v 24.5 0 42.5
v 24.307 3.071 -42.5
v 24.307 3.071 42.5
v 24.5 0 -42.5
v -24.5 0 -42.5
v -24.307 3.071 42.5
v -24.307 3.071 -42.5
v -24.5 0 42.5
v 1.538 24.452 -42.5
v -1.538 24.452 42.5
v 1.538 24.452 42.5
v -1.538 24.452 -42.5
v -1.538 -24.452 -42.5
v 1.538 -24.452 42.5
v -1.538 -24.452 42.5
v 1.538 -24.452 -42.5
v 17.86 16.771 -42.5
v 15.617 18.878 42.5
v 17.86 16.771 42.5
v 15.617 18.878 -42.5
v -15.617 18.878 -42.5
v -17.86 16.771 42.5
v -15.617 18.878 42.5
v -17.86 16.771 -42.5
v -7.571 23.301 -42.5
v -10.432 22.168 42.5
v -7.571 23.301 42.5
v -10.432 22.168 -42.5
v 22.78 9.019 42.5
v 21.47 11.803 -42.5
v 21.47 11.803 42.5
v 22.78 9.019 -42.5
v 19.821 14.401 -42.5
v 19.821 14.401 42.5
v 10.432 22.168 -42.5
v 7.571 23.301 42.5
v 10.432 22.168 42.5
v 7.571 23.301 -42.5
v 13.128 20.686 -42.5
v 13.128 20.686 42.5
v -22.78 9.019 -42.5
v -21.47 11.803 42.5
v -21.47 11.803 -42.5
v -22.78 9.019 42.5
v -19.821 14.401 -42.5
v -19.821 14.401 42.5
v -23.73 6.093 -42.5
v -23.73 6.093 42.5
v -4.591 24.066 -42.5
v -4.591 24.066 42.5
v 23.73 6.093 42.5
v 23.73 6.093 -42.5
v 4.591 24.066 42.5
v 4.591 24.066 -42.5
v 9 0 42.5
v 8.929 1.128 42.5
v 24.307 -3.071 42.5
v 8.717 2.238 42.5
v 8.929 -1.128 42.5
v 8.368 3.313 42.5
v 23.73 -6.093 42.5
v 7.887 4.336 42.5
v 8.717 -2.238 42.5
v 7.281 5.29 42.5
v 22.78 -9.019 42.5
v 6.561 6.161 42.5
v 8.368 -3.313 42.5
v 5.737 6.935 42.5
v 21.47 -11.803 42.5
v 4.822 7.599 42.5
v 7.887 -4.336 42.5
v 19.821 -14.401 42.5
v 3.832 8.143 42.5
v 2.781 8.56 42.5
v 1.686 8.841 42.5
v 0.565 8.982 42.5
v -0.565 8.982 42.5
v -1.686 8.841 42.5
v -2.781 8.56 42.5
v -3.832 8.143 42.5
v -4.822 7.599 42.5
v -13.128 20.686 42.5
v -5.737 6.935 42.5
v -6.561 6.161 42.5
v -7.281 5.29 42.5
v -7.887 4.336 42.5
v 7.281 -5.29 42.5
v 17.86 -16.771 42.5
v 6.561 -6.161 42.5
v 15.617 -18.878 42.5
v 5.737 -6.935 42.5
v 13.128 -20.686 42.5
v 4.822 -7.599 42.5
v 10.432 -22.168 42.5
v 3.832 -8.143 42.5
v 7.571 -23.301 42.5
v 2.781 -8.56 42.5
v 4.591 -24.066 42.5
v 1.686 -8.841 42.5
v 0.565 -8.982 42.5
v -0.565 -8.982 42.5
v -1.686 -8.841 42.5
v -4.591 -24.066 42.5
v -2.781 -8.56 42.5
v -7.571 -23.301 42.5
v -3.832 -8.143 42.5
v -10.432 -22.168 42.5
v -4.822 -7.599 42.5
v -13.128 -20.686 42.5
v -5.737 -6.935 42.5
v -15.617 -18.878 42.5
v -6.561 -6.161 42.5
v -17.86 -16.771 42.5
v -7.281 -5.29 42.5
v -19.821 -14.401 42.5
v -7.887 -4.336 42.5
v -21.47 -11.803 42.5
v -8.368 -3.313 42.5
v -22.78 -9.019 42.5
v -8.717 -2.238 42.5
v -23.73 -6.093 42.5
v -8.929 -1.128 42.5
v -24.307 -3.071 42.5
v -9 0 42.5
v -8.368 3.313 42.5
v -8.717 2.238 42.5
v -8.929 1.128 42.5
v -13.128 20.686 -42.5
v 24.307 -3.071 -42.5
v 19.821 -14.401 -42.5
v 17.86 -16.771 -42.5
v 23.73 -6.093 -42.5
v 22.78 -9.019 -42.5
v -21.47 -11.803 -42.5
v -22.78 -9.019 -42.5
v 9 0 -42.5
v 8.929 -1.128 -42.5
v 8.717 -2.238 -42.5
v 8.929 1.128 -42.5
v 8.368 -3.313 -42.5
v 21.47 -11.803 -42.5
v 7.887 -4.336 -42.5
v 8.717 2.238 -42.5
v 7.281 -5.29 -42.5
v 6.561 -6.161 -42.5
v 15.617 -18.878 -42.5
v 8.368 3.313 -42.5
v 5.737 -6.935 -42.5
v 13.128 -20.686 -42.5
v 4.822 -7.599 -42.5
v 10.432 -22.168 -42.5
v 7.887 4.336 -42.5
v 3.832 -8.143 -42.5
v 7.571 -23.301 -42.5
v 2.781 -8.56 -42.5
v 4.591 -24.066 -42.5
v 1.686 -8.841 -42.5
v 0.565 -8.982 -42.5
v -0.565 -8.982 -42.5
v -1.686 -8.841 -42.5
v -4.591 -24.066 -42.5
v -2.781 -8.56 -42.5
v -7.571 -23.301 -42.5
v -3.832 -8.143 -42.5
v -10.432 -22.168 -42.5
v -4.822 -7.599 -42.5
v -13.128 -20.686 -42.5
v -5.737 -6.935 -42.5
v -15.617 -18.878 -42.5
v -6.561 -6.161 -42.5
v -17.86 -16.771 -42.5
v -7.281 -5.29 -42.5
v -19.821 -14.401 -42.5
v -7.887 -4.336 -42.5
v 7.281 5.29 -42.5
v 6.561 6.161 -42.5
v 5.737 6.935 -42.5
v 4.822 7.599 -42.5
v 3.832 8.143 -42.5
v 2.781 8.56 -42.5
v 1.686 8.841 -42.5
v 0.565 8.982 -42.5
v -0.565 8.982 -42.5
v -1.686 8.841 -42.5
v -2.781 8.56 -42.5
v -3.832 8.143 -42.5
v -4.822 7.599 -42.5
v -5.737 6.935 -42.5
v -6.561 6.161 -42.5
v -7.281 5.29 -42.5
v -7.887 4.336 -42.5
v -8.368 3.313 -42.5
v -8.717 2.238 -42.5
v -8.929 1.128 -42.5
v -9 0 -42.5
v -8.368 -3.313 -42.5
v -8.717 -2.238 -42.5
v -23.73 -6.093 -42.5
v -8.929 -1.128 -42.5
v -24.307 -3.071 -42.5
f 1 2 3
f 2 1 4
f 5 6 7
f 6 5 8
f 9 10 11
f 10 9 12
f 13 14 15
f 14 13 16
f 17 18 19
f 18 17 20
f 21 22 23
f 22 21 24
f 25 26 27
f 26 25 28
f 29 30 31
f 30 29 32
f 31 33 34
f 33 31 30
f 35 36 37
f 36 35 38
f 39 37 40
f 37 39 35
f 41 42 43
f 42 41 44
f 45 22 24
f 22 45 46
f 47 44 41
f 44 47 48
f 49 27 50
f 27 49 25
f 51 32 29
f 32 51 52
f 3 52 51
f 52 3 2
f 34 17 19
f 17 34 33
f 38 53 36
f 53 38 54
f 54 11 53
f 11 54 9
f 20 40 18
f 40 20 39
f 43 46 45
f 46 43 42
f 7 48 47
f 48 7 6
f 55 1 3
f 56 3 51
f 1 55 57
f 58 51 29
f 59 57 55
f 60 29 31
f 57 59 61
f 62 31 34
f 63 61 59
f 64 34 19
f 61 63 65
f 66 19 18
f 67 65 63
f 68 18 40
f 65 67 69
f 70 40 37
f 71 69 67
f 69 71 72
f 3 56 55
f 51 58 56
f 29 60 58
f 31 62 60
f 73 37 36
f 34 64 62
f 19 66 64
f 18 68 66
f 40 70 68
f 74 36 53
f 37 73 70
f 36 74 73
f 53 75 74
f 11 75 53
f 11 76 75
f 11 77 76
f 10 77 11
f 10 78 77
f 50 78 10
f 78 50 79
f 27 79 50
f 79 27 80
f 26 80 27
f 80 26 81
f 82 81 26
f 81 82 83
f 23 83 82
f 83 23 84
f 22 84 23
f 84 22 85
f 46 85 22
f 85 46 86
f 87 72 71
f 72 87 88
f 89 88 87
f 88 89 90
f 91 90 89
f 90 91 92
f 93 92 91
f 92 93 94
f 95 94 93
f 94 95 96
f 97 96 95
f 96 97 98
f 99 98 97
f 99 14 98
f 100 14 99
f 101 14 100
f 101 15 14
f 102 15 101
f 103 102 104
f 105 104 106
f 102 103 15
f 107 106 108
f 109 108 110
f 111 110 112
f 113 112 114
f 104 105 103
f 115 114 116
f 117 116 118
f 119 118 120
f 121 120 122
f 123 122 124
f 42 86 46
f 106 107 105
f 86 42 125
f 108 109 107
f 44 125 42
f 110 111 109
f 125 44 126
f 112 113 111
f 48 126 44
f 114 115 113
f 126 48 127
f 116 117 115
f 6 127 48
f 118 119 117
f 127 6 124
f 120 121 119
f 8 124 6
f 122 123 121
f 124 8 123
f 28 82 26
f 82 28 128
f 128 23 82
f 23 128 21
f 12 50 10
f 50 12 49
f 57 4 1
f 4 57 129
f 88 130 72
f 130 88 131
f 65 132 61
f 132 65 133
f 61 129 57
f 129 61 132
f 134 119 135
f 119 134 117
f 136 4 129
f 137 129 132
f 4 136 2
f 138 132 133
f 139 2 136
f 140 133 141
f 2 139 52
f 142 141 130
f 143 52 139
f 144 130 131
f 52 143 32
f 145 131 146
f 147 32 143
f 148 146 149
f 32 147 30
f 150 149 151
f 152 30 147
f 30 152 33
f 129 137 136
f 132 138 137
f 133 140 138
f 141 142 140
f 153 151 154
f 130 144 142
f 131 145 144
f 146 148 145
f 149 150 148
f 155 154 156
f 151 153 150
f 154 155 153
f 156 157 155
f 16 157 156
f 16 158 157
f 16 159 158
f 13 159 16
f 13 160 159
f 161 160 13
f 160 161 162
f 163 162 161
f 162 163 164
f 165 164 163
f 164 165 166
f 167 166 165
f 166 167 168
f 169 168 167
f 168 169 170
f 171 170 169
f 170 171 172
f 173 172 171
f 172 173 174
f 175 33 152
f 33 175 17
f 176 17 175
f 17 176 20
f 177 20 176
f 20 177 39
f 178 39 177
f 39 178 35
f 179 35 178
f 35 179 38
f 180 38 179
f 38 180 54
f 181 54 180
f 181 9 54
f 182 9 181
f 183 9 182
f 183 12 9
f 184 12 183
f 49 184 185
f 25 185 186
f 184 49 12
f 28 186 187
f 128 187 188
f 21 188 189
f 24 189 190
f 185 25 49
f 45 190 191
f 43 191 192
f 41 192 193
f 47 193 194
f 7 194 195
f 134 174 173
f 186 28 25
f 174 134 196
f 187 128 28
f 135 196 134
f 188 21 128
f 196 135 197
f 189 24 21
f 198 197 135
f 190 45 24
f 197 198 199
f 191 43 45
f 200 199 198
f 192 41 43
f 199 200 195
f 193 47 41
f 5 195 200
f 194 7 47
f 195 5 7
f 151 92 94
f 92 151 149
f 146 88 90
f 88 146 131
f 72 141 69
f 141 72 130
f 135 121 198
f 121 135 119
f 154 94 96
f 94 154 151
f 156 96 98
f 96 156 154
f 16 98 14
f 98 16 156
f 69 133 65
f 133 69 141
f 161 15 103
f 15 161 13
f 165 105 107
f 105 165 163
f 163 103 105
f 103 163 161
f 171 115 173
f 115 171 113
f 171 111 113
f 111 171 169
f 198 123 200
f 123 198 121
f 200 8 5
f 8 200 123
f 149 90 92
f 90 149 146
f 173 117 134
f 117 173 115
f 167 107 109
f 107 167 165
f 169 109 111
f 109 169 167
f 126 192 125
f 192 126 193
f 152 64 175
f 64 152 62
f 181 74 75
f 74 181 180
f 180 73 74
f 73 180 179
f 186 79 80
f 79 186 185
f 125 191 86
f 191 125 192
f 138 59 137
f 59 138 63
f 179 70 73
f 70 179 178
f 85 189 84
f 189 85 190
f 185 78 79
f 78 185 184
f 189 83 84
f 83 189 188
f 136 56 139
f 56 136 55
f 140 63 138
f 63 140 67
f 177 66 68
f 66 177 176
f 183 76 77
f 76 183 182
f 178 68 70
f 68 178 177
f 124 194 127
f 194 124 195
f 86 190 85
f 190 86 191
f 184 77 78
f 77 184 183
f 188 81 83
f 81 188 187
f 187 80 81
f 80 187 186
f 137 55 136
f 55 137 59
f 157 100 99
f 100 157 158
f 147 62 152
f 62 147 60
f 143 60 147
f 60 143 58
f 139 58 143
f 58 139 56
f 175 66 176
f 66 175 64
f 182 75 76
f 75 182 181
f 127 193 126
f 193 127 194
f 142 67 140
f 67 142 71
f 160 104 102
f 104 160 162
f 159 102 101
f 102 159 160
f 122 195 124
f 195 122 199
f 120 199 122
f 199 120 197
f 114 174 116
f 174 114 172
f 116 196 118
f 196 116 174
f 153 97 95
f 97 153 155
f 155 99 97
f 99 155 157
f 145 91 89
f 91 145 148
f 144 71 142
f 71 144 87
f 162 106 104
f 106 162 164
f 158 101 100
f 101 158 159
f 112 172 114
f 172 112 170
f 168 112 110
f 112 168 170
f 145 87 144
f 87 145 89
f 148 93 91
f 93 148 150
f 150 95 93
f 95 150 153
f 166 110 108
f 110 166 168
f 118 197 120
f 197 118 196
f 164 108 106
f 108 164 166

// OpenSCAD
$fn = 50;


difference() {
	union() {
		translate(v = [0, 0, -42.5000000000]) {
			cylinder(h = 85, r = 24.5000000000);
		}
	}
	union() {
		translate(v = [0, 0, -100.0000000000]) {
			cylinder(h = 200, r = 9);
		}
	}
}
